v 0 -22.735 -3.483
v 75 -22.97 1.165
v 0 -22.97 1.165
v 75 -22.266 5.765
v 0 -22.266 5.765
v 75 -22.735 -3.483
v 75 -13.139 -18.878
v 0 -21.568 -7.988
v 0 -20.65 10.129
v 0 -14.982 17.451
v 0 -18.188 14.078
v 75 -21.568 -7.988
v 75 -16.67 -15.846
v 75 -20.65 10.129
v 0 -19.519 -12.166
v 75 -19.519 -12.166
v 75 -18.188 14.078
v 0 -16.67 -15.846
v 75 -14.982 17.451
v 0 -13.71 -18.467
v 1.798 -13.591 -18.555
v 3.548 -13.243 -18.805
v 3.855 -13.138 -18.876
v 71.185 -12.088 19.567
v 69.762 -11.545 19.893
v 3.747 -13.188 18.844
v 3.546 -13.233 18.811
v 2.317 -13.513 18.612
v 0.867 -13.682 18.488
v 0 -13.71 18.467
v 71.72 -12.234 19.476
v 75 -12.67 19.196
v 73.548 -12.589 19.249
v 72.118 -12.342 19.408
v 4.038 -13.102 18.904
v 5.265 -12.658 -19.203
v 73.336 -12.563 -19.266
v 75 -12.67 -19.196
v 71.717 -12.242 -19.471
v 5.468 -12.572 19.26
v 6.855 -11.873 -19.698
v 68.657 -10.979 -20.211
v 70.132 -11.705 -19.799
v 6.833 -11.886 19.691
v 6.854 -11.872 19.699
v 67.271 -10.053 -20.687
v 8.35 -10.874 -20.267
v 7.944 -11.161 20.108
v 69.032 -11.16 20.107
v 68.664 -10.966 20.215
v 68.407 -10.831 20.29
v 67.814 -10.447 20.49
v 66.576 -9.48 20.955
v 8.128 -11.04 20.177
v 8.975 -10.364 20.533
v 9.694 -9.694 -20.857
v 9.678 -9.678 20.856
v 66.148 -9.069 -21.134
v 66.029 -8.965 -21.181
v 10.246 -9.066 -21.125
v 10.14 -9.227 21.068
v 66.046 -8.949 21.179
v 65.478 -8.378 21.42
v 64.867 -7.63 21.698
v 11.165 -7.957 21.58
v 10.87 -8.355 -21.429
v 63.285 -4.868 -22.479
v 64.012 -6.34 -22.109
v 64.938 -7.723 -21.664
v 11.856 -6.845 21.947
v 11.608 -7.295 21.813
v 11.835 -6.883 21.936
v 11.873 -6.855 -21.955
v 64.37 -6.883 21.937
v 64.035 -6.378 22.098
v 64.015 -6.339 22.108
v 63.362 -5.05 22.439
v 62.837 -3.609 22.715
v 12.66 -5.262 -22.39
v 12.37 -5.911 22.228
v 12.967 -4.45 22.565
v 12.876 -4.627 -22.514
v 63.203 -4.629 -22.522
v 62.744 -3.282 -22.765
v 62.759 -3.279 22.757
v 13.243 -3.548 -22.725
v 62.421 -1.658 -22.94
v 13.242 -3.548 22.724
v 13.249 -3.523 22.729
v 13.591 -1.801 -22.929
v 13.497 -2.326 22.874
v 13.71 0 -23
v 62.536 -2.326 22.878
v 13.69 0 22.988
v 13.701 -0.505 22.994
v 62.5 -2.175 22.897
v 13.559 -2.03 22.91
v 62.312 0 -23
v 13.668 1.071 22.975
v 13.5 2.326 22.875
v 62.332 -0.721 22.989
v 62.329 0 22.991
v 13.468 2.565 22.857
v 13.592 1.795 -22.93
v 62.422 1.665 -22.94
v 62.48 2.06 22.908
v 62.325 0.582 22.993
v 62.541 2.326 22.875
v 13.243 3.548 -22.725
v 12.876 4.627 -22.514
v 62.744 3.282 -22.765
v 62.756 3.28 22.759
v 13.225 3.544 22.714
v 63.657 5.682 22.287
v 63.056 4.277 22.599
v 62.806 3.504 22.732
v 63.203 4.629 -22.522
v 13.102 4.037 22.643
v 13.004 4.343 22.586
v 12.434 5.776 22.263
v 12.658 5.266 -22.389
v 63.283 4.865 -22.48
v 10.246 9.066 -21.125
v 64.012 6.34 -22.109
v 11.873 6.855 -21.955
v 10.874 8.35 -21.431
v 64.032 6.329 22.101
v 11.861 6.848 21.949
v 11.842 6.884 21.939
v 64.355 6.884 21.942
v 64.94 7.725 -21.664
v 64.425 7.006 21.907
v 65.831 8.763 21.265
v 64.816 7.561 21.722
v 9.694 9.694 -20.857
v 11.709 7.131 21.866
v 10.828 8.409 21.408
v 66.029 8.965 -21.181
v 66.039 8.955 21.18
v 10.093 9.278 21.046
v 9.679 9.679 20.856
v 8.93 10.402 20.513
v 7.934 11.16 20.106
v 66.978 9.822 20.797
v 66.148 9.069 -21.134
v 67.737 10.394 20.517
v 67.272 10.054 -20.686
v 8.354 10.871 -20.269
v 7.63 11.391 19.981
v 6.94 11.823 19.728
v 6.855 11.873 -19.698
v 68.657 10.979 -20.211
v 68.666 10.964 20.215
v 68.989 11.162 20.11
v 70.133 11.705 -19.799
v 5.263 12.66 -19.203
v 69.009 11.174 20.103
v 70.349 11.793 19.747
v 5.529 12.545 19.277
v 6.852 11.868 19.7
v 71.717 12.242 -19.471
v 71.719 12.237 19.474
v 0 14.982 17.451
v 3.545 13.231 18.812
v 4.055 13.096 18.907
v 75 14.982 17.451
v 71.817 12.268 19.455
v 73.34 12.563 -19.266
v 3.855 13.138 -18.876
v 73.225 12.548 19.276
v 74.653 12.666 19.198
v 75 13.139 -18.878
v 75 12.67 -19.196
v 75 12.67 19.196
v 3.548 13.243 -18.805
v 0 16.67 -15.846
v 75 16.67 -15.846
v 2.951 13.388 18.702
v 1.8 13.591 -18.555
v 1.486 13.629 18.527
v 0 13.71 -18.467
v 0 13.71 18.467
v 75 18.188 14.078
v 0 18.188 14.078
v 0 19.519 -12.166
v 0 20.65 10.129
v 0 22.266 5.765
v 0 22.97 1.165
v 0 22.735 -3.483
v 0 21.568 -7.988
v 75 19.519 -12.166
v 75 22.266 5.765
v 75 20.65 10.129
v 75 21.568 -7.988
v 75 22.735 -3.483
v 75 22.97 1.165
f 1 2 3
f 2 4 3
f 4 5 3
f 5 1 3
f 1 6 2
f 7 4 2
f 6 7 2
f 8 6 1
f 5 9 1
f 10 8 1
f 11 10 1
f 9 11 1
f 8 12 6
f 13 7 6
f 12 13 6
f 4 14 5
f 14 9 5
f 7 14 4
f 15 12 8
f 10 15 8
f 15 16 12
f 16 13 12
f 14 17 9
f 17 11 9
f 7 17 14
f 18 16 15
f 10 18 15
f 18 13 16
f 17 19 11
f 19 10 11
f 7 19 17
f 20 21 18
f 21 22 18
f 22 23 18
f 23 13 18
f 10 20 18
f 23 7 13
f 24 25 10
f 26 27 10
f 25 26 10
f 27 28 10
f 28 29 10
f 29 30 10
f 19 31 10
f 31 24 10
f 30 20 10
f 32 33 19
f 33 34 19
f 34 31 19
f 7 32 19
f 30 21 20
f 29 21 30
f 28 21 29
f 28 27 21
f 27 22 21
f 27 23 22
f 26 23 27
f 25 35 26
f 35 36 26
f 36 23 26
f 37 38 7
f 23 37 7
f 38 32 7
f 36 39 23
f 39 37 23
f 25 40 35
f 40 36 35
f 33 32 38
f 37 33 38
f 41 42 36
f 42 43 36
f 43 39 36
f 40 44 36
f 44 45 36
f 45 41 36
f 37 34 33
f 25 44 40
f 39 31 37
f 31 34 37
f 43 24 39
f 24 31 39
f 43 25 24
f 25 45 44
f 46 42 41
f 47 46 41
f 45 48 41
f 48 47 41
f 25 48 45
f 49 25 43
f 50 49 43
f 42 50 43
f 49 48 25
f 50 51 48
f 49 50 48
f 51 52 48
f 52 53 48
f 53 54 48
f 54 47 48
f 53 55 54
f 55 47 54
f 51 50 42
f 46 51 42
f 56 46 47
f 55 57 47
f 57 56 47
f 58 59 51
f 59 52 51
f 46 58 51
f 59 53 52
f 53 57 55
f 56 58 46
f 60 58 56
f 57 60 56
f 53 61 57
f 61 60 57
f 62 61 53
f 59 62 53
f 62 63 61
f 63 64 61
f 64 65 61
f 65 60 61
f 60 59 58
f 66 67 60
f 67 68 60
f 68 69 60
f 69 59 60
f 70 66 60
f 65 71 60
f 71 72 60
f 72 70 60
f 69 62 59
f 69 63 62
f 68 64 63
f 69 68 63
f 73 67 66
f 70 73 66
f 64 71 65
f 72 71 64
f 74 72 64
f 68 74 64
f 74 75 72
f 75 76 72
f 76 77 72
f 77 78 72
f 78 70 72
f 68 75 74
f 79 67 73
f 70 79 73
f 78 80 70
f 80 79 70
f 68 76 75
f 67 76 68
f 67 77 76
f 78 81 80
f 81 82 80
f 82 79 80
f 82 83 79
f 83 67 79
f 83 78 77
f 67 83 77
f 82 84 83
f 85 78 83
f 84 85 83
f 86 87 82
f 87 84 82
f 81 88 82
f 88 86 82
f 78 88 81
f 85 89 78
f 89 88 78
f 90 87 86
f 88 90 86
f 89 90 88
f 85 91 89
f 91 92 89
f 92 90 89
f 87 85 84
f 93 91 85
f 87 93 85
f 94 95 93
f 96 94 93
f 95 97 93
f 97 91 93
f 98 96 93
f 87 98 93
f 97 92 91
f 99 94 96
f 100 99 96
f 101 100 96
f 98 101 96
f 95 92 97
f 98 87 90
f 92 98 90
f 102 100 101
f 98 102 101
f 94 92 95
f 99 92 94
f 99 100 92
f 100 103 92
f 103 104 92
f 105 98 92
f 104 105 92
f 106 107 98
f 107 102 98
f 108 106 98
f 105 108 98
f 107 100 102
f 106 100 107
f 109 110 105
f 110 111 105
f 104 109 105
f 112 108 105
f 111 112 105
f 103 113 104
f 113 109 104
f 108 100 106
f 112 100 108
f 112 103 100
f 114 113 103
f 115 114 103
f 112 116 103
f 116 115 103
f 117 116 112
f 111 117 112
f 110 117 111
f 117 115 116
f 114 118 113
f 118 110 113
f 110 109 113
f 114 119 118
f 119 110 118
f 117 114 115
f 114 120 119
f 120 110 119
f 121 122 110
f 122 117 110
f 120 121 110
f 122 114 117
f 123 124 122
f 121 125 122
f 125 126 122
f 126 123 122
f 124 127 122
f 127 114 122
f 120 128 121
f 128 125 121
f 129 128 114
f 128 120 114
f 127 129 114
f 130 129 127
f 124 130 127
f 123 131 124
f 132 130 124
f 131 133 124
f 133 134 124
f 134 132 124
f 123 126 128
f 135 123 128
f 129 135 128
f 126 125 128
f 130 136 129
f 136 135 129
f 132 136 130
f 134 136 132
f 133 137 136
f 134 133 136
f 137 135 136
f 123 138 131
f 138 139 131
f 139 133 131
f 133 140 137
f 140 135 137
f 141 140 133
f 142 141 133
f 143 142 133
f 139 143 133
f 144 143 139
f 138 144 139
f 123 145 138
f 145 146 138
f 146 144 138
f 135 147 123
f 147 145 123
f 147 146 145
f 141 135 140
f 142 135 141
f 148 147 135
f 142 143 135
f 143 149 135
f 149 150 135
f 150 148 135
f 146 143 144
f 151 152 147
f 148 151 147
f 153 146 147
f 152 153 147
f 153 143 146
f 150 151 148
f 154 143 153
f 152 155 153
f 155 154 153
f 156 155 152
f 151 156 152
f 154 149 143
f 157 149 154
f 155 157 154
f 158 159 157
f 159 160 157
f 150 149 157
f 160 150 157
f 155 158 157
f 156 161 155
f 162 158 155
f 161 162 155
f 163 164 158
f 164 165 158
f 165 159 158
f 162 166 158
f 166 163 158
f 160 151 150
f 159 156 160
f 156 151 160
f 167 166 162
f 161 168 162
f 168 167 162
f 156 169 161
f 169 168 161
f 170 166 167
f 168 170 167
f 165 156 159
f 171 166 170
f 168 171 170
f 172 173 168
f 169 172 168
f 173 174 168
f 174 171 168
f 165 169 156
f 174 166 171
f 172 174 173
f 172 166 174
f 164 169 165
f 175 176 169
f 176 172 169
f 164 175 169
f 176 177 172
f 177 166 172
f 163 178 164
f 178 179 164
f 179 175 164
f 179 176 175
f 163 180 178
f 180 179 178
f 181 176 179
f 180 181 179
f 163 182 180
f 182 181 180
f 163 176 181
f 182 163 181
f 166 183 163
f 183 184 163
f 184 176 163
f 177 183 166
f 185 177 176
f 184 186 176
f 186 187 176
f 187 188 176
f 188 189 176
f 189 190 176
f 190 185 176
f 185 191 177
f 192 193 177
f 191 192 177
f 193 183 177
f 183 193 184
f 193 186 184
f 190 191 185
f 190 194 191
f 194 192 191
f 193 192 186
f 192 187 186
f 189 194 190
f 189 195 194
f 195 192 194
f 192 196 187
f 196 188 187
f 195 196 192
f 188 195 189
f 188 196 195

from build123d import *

# Parameters (mm, degrees)
SKETCH1_R                           = 23
BOSS_EXTRUDE1_DEPTH                 = 75
CUT_EXTRUDE1_REACH                  = 83.75
CUT_EXTRUDE1_END_RADIUS             = 23
SKETCH2_R                           = 13.709861361
SKETCH2_R_2                         = 12.670153282
CUT_EXTRUDE1_DIRECTION_2_REACH      = 83.75
CUT_EXTRUDE1_DIRECTION_2_END_RADIUS = 23


with BuildPart() as part:
    # Sketch1 → Boss-Extrude1 (new body)
    with BuildSketch(Plane(origin=(0, 0, 0), x_dir=(0, 0, -1), z_dir=(1, 0, 0))):
        Circle(SKETCH1_R)
    extrude(amount=BOSS_EXTRUDE1_DEPTH)

    # Cut-Extrude1: up to this cylinder (the profile starts inside it)
    cut_extrude1_end = Plane(origin=(37.49105, 0, 0), z_dir=(-1, 0, 0)) * Cylinder(CUT_EXTRUDE1_END_RADIUS, 289.4821, mode=Mode.PRIVATE)
    # Sketch2 → Cut-Extrude1 (cut, up to the surface)
    with BuildSketch(Plane.XY, mode=Mode.PRIVATE) as cut_extrude1_sk1:
        Circle(SKETCH2_R)
    cut_extrude1_tool1 = extrude(cut_extrude1_sk1.sketch, amount=-CUT_EXTRUDE1_REACH, mode=Mode.PRIVATE) & cut_extrude1_end
    add(cut_extrude1_tool1.solids().sort_by_distance((0, 0, 0))[0], mode=Mode.SUBTRACT)
    # Sketch2 → Cut-Extrude1 (cut, up to the surface)
    with BuildSketch(Plane.XY, mode=Mode.PRIVATE) as cut_extrude1_sk2:
        with Locations((74.982099517, 0)):
            Circle(SKETCH2_R_2)
    cut_extrude1_tool2 = extrude(cut_extrude1_sk2.sketch, amount=-CUT_EXTRUDE1_REACH, mode=Mode.PRIVATE) & cut_extrude1_end
    add(cut_extrude1_tool2.solids().sort_by_distance((74.9821, 0, 0))[0], mode=Mode.SUBTRACT)

    # Cut-Extrude1 direction 2: up to this cylinder (the profile starts inside it)
    cut_extrude1_direction_2_end = Plane(origin=(37.49105, 0, 0), z_dir=(-1, 0, 0)) * Cylinder(CUT_EXTRUDE1_DIRECTION_2_END_RADIUS, 289.4821, mode=Mode.PRIVATE)
    # Sketch2 → Cut-Extrude1 direction 2 (cut, up to the surface)
    with BuildSketch(Plane.XY, mode=Mode.PRIVATE) as cut_extrude1_direction_2_sk1:
        Circle(SKETCH2_R)
    cut_extrude1_direction_2_tool1 = extrude(cut_extrude1_direction_2_sk1.sketch, amount=CUT_EXTRUDE1_DIRECTION_2_REACH, mode=Mode.PRIVATE) & cut_extrude1_direction_2_end
    add(cut_extrude1_direction_2_tool1.solids().sort_by_distance((0, 0, 0))[0], mode=Mode.SUBTRACT)
    # Sketch2 → Cut-Extrude1 direction 2 (cut, up to the surface)
    with BuildSketch(Plane.XY, mode=Mode.PRIVATE) as cut_extrude1_direction_2_sk2:
        with Locations((74.982099517, 0)):
            Circle(SKETCH2_R_2)
    cut_extrude1_direction_2_tool2 = extrude(cut_extrude1_direction_2_sk2.sketch, amount=CUT_EXTRUDE1_DIRECTION_2_REACH, mode=Mode.PRIVATE) & cut_extrude1_direction_2_end
    add(cut_extrude1_direction_2_tool2.solids().sort_by_distance((74.9821, 0, 0))[0], mode=Mode.SUBTRACT)


solid = part.part
